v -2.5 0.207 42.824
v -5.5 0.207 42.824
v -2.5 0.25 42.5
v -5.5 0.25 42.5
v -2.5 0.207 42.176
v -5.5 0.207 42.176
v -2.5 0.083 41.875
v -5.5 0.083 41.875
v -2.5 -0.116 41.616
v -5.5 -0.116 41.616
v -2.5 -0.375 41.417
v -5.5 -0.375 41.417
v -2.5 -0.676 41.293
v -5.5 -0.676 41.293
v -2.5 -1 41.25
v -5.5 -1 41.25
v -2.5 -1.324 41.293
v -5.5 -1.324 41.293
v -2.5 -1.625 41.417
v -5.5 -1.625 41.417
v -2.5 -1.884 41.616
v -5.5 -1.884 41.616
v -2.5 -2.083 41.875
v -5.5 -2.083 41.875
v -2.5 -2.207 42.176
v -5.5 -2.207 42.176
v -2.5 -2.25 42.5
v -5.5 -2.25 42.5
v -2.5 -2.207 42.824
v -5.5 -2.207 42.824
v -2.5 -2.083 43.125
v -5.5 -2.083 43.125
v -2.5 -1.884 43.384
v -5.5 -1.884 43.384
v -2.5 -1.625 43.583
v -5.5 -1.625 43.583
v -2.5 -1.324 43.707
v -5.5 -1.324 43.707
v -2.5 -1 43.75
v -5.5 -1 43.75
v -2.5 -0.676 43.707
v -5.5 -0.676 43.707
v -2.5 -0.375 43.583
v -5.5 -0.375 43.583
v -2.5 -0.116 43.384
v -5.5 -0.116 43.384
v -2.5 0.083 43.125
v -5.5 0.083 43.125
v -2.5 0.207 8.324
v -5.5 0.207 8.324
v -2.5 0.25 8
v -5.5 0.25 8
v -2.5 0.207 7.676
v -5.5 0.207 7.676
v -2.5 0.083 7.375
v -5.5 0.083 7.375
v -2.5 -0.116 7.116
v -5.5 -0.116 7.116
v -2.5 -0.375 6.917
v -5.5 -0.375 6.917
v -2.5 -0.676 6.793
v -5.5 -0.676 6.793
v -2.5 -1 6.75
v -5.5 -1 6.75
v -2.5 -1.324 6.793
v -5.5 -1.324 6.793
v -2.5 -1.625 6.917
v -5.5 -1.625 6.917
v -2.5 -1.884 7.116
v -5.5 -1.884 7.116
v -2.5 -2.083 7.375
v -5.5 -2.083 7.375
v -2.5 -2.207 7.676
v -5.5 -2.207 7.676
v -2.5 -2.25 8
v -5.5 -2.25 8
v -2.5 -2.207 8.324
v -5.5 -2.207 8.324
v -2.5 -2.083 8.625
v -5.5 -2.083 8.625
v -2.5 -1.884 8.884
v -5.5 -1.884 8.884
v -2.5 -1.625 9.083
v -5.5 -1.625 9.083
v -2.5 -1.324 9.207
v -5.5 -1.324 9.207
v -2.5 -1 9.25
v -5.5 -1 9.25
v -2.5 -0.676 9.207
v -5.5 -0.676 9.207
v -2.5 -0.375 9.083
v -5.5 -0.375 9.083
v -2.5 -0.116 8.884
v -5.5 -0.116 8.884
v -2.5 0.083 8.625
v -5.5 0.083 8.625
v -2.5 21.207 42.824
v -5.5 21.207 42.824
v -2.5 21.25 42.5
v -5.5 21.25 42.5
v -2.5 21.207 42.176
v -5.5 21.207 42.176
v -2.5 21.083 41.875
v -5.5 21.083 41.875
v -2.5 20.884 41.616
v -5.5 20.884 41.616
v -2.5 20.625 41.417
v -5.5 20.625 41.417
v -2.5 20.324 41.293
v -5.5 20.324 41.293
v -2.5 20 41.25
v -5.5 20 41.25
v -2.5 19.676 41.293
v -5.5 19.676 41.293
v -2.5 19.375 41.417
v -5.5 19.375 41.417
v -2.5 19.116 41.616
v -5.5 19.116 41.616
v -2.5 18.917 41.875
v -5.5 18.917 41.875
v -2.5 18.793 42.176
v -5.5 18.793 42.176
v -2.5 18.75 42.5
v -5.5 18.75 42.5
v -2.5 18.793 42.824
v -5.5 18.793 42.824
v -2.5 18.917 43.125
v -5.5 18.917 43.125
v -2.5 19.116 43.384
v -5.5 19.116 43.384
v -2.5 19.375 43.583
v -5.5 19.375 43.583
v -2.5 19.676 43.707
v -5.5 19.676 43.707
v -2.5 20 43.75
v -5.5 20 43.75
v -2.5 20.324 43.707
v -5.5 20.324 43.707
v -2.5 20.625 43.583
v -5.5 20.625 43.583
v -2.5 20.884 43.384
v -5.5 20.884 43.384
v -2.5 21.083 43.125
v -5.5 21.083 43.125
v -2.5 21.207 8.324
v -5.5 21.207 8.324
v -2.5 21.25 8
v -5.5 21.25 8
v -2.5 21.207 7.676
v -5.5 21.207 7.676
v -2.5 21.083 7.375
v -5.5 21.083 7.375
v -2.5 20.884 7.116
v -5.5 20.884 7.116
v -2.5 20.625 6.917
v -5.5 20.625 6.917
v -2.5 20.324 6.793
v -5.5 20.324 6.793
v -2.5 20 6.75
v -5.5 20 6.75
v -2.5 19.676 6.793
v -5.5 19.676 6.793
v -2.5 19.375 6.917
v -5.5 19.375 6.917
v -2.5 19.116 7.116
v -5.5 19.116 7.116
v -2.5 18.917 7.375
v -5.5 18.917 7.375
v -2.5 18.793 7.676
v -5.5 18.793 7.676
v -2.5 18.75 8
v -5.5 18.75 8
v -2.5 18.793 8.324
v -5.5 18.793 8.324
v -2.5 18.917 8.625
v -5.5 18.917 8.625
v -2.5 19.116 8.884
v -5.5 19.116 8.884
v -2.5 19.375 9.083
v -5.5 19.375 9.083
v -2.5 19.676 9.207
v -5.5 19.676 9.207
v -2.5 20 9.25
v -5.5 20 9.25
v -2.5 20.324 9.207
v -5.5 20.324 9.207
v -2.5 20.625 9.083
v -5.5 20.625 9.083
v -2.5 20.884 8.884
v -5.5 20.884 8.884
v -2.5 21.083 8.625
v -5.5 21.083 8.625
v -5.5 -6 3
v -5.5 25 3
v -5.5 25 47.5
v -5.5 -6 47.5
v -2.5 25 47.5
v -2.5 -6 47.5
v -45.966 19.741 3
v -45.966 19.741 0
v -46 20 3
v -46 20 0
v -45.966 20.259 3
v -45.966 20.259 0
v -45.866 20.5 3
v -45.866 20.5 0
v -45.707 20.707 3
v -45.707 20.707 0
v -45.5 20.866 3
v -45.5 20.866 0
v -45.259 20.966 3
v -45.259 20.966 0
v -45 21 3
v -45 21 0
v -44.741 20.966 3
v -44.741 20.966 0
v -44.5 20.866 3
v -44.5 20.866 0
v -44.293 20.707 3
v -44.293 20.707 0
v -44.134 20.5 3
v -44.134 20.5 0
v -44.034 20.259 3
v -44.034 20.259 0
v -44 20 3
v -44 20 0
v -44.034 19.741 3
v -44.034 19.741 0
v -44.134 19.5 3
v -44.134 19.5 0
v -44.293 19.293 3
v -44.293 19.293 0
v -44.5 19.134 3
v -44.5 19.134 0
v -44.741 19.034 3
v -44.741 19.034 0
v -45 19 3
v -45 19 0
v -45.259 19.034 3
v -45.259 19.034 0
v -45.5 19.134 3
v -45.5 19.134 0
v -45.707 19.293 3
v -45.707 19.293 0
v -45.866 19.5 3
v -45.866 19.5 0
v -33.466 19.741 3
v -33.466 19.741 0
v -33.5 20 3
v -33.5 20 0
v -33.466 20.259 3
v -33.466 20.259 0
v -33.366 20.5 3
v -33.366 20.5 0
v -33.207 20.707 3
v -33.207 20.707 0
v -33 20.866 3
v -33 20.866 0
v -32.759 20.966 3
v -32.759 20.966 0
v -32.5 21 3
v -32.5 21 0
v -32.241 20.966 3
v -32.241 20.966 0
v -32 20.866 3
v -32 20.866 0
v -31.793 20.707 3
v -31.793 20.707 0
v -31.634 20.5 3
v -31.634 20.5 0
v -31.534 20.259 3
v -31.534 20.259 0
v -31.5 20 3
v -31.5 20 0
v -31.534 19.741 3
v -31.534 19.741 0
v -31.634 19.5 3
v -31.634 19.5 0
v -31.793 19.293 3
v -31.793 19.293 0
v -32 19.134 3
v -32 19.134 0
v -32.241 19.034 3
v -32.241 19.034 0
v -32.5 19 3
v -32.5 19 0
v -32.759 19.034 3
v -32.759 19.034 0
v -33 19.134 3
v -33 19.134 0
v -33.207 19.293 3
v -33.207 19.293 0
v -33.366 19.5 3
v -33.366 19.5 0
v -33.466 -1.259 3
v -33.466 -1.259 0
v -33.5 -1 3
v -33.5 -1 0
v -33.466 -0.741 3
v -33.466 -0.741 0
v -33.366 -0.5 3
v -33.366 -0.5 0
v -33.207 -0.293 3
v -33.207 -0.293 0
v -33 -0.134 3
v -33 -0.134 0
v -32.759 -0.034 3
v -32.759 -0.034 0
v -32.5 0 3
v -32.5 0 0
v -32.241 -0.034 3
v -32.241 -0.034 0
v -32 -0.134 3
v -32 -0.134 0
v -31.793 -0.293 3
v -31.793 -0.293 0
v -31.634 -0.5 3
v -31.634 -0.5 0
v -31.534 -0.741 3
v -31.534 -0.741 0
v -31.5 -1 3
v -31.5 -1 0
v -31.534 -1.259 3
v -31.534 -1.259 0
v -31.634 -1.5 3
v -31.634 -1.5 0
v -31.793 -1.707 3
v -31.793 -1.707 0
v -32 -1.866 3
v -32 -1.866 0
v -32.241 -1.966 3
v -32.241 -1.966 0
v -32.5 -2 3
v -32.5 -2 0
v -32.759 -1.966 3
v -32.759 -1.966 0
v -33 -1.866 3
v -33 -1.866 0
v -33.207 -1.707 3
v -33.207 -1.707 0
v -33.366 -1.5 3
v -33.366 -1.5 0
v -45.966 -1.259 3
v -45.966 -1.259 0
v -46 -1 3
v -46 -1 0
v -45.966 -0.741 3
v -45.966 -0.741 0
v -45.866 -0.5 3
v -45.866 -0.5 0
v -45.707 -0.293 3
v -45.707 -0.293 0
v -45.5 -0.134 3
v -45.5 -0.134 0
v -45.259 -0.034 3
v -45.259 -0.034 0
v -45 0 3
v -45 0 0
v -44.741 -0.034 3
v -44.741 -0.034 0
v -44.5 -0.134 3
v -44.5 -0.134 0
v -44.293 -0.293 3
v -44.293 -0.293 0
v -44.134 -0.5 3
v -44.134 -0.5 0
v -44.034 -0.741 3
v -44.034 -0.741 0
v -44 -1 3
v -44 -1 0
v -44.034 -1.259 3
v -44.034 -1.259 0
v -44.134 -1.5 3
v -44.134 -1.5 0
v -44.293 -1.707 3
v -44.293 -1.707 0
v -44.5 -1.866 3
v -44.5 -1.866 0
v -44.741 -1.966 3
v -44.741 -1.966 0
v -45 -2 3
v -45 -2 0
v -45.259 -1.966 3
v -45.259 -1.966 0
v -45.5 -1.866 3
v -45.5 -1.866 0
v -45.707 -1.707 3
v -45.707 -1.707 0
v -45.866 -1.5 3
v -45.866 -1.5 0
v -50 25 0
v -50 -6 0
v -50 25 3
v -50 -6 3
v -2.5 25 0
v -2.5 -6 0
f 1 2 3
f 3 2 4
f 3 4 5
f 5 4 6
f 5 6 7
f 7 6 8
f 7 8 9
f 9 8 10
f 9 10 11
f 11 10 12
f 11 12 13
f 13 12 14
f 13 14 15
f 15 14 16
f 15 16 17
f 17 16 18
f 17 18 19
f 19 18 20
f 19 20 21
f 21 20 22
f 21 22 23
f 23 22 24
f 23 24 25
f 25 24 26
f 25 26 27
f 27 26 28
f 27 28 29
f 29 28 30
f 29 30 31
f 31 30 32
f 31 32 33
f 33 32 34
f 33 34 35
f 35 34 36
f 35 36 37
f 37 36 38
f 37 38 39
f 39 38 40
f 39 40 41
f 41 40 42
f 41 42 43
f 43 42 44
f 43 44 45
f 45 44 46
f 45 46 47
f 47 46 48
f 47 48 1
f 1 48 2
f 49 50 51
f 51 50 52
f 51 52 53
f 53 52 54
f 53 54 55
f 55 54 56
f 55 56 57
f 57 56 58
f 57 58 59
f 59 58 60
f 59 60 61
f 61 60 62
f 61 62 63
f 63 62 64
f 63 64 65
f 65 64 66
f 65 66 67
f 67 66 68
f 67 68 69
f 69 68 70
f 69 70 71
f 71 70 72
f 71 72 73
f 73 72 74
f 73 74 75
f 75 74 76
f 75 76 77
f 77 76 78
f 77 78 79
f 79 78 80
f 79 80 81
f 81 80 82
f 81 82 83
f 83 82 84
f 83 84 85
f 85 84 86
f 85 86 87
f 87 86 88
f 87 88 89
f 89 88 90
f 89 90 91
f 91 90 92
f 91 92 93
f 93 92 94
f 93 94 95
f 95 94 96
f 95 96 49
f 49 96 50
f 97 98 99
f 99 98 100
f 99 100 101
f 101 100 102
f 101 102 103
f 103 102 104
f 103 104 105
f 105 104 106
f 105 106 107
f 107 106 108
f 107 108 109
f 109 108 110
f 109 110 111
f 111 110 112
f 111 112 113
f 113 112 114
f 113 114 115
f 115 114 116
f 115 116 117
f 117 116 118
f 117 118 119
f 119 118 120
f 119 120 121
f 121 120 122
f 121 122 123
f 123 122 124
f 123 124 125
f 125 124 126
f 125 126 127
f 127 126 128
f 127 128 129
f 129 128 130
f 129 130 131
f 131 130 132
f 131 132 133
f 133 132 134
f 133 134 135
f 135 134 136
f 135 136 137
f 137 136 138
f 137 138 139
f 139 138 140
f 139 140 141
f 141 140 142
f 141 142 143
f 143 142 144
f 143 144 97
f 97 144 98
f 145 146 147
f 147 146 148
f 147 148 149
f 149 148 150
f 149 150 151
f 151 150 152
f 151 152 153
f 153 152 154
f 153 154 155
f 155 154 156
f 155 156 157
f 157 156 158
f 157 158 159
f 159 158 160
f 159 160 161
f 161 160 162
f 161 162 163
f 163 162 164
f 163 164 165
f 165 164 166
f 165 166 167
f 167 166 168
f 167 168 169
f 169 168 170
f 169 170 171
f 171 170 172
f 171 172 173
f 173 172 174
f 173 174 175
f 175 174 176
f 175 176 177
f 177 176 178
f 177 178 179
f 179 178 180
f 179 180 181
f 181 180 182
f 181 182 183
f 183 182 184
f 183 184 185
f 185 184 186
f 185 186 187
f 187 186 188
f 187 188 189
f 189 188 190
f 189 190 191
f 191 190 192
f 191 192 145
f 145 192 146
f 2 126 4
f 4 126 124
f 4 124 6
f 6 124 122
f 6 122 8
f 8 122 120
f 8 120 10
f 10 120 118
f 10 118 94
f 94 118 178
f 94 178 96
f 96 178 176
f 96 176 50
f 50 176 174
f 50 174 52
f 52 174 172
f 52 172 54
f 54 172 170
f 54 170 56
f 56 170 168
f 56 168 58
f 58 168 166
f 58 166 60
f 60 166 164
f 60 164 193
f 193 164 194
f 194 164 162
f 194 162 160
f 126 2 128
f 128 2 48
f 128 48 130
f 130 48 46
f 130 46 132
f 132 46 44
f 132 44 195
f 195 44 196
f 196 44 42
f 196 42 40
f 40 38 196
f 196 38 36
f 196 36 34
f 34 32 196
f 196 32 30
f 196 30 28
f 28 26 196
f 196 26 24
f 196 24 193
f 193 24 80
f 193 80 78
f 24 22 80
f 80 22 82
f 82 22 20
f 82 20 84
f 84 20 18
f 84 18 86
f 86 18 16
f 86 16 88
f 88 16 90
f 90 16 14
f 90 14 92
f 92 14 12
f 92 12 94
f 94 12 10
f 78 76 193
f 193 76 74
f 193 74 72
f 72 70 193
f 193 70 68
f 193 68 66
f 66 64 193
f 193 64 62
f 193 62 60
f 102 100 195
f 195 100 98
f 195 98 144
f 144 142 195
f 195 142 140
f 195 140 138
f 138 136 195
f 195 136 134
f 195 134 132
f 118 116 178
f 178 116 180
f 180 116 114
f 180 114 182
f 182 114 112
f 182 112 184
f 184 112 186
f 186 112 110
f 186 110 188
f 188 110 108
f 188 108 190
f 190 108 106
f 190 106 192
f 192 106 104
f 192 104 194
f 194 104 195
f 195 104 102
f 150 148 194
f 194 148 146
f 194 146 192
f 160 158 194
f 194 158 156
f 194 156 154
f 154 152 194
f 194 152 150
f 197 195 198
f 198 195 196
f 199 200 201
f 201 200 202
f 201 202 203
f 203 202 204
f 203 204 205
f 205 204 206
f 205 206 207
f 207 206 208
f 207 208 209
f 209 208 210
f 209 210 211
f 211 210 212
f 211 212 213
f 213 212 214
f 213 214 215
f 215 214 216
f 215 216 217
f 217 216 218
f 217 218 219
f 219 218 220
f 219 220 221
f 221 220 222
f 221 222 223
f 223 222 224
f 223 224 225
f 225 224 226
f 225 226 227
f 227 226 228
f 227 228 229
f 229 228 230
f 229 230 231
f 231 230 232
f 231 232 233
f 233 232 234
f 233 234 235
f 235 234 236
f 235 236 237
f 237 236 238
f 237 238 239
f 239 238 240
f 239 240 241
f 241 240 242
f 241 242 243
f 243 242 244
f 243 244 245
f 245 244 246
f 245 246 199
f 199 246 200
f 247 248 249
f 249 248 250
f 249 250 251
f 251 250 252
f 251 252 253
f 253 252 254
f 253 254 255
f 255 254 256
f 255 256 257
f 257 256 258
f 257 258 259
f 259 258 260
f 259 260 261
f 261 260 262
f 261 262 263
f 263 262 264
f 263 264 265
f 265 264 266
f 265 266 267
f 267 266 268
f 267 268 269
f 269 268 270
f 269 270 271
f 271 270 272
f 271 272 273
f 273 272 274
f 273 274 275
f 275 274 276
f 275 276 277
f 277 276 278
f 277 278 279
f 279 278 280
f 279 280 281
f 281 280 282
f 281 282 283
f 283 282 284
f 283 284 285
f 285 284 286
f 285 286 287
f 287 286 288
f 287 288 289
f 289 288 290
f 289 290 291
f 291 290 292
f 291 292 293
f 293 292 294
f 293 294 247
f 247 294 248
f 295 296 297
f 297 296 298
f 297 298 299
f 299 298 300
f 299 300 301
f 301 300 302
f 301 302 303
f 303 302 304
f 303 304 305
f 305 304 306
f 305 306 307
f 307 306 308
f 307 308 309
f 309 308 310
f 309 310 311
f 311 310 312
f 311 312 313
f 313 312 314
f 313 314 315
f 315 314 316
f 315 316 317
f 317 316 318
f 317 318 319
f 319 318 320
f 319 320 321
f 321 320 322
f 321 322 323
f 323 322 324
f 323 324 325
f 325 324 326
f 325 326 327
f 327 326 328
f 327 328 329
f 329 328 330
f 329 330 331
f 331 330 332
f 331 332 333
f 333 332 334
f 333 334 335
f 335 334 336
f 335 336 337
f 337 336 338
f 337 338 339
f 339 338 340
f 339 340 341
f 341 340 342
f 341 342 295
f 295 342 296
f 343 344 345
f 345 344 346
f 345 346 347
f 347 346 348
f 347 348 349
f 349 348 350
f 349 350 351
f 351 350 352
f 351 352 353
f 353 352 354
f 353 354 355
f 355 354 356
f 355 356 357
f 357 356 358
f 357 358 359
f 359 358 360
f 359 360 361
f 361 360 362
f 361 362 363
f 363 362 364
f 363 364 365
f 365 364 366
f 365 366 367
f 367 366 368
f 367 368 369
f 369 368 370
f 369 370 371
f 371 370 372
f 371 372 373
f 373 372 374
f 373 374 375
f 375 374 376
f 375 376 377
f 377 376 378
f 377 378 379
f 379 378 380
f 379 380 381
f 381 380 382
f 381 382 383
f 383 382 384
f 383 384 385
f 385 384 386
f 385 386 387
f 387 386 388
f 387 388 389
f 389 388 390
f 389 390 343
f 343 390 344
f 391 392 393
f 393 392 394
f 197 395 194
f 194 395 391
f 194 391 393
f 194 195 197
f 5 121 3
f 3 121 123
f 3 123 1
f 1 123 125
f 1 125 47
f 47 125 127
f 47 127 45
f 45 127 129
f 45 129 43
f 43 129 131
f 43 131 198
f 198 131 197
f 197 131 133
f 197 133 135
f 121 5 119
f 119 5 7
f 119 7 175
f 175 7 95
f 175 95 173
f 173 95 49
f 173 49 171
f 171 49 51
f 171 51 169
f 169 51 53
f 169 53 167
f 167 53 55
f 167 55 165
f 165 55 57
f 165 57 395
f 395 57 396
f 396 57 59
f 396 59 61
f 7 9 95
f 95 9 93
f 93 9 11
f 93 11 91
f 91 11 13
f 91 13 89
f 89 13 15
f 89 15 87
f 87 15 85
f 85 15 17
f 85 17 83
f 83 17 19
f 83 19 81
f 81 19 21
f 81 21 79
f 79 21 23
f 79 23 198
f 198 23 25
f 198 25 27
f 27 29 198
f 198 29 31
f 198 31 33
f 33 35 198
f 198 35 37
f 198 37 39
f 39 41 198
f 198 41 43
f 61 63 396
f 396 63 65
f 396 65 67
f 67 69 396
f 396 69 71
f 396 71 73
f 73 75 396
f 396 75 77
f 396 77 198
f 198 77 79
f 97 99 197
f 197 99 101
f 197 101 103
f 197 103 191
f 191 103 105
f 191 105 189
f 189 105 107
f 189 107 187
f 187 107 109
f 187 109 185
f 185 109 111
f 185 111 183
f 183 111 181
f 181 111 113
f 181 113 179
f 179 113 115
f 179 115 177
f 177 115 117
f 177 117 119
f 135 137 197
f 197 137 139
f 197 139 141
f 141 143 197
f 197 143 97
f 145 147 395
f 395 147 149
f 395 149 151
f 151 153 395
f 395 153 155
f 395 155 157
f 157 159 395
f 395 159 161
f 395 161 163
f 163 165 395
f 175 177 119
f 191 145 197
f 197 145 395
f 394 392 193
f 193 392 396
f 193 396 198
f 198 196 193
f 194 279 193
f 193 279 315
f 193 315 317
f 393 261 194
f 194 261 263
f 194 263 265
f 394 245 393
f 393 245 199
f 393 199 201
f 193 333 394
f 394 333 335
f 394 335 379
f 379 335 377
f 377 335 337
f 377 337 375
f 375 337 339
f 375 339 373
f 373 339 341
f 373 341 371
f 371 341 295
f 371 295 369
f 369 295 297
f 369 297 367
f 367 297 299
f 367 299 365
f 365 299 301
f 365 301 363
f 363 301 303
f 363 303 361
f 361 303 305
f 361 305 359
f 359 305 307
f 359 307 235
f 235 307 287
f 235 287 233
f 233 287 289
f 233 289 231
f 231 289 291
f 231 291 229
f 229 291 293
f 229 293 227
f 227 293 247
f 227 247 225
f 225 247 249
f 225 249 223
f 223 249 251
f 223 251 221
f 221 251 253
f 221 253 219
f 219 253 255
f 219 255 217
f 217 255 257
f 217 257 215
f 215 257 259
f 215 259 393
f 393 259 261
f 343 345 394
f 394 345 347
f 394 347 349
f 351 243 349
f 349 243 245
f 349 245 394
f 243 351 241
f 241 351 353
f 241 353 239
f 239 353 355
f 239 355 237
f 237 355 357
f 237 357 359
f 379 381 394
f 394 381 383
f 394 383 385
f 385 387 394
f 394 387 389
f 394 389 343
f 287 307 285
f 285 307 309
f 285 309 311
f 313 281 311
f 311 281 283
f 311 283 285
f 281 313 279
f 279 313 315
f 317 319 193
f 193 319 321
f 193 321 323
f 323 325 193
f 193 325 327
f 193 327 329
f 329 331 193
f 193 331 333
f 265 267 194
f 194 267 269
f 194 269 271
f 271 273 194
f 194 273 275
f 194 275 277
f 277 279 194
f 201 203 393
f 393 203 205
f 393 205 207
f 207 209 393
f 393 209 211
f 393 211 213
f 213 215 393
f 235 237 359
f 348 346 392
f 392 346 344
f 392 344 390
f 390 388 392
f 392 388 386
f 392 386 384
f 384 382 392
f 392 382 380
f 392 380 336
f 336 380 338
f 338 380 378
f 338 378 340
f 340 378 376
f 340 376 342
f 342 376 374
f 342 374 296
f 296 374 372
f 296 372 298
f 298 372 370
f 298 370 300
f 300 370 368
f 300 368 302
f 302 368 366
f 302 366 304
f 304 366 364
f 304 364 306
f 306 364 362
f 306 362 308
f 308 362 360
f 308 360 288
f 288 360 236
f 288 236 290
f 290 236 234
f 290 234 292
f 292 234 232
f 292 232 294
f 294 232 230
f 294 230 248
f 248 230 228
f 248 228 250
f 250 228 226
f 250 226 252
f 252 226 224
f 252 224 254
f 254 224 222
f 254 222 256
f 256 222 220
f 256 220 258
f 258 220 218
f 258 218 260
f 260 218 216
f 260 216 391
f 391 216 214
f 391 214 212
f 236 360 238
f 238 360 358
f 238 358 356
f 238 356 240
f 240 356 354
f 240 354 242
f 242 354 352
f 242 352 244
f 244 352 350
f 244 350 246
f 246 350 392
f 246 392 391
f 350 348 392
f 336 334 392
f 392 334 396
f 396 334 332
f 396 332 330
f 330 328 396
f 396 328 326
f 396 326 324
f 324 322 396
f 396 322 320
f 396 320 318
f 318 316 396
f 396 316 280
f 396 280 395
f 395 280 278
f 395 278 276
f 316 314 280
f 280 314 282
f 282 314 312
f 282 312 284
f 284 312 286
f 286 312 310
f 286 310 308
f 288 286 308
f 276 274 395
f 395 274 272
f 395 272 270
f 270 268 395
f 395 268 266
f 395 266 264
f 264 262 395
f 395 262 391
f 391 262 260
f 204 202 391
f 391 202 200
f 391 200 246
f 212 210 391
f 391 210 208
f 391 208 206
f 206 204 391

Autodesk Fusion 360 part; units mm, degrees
sketch "Sketch1" plane through (0, 0, 0) normal (0, 0, 1) x (1, 0, 0)
  line L0 (-50, 25) -> (-2.5, 25)
  line L1 (-2.5, 25) -> (-2.5, -6)
  line L2 (-2.5, -6) -> (-50, -6)
  line L3 (-50, -6) -> (-50, 25)
  circle A0 centre (-45, 20) radius 1
  circle A1 centre (-32.5, 20) radius 1
  circle A2 centre (-45, -1) radius 1
  circle A3 centre (-32.5, -1) radius 1
  dimension "d1" = 2
  dimension "d2" = 2
  dimension "d3" = 2
  dimension "d4" = 2
  dimension "d5" = 12.5
  dimension "d6" = 5
  dimension "d7" = 5
  dimension "d8" = 12.5
  dimension "d9" = 21
  dimension "d10" = 21
  dimension "d11" = 5
  dimension "d12" = 5
  dimension "d13" = 5
  dimension "d14" = 5
  dimension "d15" = 30
  dimension "d16" = 47.5
  dimension "d17" = 31
extrude "Extrude1" add sketch "Sketch1" along normal blind 3
sketch "Sketch2" plane through (0, 0, 3) normal (0, 0, 1) x (-1, 0, 0)
  circle A0 centre (45, 1) radius 1
  circle A1 centre (32.5, 1) radius 1
  circle A2 centre (32.5, -20) radius 1
  circle A3 centre (45, -20) radius 1
  line L0 (50, 6) -> (2.5, 6)
  line L1 (2.5, 6) -> (2.5, -25)
  line L2 (2.5, -25) -> (50, -25)
  line L3 (50, -25) -> (50, 6)
  line L4 (2.5, -25) -> (5.5, -25)
  line L5 (5.5, -25) -> (5.5, 6)
  line L6 (5.5, 6) -> (2.5, 6)
  line L7 (2.5, 6) -> (2.5, -25)
  dimension "d20" = 3
  dimension "d21" = 31
extrude "Extrude2" add sketch "Sketch2" along normal blind 44.5 contours L0 L1 L2 L4 L5 L6 L7
sketch "Sketch3" plane through (-5.5, 0, 0) normal (-1, 0, 0) x (0, -1, 0)
  line L0 (-25, 3) -> (6, 3)
  line L1 (6, 3) -> (6, 47.5)
  line L2 (6, 47.5) -> (-25, 47.5)
  line L3 (-25, 47.5) -> (-25, 3)
  circle A0 centre (-20, 42.5) radius 1.25
  circle A1 centre (1, 42.5) radius 1.25
  circle A2 centre (-20, 8) radius 1.25
  circle A3 centre (1, 8) radius 1.25
  dimension "d24" = 2.5
  dimension "d25" = 2.5
  dimension "d26" = 2.5
  dimension "d27" = 2.5
  dimension "d28" = 5
  dimension "d29" = 5
  dimension "d30" = 5
  dimension "d31" = 5
  dimension "d32" = 5
  dimension "d33" = 5
  dimension "d34" = 5
  dimension "d35" = 5
extrude "Extrude3" cut sketch "Sketch3" against normal blind 3 contours A0 | A1 | A2 | A3
